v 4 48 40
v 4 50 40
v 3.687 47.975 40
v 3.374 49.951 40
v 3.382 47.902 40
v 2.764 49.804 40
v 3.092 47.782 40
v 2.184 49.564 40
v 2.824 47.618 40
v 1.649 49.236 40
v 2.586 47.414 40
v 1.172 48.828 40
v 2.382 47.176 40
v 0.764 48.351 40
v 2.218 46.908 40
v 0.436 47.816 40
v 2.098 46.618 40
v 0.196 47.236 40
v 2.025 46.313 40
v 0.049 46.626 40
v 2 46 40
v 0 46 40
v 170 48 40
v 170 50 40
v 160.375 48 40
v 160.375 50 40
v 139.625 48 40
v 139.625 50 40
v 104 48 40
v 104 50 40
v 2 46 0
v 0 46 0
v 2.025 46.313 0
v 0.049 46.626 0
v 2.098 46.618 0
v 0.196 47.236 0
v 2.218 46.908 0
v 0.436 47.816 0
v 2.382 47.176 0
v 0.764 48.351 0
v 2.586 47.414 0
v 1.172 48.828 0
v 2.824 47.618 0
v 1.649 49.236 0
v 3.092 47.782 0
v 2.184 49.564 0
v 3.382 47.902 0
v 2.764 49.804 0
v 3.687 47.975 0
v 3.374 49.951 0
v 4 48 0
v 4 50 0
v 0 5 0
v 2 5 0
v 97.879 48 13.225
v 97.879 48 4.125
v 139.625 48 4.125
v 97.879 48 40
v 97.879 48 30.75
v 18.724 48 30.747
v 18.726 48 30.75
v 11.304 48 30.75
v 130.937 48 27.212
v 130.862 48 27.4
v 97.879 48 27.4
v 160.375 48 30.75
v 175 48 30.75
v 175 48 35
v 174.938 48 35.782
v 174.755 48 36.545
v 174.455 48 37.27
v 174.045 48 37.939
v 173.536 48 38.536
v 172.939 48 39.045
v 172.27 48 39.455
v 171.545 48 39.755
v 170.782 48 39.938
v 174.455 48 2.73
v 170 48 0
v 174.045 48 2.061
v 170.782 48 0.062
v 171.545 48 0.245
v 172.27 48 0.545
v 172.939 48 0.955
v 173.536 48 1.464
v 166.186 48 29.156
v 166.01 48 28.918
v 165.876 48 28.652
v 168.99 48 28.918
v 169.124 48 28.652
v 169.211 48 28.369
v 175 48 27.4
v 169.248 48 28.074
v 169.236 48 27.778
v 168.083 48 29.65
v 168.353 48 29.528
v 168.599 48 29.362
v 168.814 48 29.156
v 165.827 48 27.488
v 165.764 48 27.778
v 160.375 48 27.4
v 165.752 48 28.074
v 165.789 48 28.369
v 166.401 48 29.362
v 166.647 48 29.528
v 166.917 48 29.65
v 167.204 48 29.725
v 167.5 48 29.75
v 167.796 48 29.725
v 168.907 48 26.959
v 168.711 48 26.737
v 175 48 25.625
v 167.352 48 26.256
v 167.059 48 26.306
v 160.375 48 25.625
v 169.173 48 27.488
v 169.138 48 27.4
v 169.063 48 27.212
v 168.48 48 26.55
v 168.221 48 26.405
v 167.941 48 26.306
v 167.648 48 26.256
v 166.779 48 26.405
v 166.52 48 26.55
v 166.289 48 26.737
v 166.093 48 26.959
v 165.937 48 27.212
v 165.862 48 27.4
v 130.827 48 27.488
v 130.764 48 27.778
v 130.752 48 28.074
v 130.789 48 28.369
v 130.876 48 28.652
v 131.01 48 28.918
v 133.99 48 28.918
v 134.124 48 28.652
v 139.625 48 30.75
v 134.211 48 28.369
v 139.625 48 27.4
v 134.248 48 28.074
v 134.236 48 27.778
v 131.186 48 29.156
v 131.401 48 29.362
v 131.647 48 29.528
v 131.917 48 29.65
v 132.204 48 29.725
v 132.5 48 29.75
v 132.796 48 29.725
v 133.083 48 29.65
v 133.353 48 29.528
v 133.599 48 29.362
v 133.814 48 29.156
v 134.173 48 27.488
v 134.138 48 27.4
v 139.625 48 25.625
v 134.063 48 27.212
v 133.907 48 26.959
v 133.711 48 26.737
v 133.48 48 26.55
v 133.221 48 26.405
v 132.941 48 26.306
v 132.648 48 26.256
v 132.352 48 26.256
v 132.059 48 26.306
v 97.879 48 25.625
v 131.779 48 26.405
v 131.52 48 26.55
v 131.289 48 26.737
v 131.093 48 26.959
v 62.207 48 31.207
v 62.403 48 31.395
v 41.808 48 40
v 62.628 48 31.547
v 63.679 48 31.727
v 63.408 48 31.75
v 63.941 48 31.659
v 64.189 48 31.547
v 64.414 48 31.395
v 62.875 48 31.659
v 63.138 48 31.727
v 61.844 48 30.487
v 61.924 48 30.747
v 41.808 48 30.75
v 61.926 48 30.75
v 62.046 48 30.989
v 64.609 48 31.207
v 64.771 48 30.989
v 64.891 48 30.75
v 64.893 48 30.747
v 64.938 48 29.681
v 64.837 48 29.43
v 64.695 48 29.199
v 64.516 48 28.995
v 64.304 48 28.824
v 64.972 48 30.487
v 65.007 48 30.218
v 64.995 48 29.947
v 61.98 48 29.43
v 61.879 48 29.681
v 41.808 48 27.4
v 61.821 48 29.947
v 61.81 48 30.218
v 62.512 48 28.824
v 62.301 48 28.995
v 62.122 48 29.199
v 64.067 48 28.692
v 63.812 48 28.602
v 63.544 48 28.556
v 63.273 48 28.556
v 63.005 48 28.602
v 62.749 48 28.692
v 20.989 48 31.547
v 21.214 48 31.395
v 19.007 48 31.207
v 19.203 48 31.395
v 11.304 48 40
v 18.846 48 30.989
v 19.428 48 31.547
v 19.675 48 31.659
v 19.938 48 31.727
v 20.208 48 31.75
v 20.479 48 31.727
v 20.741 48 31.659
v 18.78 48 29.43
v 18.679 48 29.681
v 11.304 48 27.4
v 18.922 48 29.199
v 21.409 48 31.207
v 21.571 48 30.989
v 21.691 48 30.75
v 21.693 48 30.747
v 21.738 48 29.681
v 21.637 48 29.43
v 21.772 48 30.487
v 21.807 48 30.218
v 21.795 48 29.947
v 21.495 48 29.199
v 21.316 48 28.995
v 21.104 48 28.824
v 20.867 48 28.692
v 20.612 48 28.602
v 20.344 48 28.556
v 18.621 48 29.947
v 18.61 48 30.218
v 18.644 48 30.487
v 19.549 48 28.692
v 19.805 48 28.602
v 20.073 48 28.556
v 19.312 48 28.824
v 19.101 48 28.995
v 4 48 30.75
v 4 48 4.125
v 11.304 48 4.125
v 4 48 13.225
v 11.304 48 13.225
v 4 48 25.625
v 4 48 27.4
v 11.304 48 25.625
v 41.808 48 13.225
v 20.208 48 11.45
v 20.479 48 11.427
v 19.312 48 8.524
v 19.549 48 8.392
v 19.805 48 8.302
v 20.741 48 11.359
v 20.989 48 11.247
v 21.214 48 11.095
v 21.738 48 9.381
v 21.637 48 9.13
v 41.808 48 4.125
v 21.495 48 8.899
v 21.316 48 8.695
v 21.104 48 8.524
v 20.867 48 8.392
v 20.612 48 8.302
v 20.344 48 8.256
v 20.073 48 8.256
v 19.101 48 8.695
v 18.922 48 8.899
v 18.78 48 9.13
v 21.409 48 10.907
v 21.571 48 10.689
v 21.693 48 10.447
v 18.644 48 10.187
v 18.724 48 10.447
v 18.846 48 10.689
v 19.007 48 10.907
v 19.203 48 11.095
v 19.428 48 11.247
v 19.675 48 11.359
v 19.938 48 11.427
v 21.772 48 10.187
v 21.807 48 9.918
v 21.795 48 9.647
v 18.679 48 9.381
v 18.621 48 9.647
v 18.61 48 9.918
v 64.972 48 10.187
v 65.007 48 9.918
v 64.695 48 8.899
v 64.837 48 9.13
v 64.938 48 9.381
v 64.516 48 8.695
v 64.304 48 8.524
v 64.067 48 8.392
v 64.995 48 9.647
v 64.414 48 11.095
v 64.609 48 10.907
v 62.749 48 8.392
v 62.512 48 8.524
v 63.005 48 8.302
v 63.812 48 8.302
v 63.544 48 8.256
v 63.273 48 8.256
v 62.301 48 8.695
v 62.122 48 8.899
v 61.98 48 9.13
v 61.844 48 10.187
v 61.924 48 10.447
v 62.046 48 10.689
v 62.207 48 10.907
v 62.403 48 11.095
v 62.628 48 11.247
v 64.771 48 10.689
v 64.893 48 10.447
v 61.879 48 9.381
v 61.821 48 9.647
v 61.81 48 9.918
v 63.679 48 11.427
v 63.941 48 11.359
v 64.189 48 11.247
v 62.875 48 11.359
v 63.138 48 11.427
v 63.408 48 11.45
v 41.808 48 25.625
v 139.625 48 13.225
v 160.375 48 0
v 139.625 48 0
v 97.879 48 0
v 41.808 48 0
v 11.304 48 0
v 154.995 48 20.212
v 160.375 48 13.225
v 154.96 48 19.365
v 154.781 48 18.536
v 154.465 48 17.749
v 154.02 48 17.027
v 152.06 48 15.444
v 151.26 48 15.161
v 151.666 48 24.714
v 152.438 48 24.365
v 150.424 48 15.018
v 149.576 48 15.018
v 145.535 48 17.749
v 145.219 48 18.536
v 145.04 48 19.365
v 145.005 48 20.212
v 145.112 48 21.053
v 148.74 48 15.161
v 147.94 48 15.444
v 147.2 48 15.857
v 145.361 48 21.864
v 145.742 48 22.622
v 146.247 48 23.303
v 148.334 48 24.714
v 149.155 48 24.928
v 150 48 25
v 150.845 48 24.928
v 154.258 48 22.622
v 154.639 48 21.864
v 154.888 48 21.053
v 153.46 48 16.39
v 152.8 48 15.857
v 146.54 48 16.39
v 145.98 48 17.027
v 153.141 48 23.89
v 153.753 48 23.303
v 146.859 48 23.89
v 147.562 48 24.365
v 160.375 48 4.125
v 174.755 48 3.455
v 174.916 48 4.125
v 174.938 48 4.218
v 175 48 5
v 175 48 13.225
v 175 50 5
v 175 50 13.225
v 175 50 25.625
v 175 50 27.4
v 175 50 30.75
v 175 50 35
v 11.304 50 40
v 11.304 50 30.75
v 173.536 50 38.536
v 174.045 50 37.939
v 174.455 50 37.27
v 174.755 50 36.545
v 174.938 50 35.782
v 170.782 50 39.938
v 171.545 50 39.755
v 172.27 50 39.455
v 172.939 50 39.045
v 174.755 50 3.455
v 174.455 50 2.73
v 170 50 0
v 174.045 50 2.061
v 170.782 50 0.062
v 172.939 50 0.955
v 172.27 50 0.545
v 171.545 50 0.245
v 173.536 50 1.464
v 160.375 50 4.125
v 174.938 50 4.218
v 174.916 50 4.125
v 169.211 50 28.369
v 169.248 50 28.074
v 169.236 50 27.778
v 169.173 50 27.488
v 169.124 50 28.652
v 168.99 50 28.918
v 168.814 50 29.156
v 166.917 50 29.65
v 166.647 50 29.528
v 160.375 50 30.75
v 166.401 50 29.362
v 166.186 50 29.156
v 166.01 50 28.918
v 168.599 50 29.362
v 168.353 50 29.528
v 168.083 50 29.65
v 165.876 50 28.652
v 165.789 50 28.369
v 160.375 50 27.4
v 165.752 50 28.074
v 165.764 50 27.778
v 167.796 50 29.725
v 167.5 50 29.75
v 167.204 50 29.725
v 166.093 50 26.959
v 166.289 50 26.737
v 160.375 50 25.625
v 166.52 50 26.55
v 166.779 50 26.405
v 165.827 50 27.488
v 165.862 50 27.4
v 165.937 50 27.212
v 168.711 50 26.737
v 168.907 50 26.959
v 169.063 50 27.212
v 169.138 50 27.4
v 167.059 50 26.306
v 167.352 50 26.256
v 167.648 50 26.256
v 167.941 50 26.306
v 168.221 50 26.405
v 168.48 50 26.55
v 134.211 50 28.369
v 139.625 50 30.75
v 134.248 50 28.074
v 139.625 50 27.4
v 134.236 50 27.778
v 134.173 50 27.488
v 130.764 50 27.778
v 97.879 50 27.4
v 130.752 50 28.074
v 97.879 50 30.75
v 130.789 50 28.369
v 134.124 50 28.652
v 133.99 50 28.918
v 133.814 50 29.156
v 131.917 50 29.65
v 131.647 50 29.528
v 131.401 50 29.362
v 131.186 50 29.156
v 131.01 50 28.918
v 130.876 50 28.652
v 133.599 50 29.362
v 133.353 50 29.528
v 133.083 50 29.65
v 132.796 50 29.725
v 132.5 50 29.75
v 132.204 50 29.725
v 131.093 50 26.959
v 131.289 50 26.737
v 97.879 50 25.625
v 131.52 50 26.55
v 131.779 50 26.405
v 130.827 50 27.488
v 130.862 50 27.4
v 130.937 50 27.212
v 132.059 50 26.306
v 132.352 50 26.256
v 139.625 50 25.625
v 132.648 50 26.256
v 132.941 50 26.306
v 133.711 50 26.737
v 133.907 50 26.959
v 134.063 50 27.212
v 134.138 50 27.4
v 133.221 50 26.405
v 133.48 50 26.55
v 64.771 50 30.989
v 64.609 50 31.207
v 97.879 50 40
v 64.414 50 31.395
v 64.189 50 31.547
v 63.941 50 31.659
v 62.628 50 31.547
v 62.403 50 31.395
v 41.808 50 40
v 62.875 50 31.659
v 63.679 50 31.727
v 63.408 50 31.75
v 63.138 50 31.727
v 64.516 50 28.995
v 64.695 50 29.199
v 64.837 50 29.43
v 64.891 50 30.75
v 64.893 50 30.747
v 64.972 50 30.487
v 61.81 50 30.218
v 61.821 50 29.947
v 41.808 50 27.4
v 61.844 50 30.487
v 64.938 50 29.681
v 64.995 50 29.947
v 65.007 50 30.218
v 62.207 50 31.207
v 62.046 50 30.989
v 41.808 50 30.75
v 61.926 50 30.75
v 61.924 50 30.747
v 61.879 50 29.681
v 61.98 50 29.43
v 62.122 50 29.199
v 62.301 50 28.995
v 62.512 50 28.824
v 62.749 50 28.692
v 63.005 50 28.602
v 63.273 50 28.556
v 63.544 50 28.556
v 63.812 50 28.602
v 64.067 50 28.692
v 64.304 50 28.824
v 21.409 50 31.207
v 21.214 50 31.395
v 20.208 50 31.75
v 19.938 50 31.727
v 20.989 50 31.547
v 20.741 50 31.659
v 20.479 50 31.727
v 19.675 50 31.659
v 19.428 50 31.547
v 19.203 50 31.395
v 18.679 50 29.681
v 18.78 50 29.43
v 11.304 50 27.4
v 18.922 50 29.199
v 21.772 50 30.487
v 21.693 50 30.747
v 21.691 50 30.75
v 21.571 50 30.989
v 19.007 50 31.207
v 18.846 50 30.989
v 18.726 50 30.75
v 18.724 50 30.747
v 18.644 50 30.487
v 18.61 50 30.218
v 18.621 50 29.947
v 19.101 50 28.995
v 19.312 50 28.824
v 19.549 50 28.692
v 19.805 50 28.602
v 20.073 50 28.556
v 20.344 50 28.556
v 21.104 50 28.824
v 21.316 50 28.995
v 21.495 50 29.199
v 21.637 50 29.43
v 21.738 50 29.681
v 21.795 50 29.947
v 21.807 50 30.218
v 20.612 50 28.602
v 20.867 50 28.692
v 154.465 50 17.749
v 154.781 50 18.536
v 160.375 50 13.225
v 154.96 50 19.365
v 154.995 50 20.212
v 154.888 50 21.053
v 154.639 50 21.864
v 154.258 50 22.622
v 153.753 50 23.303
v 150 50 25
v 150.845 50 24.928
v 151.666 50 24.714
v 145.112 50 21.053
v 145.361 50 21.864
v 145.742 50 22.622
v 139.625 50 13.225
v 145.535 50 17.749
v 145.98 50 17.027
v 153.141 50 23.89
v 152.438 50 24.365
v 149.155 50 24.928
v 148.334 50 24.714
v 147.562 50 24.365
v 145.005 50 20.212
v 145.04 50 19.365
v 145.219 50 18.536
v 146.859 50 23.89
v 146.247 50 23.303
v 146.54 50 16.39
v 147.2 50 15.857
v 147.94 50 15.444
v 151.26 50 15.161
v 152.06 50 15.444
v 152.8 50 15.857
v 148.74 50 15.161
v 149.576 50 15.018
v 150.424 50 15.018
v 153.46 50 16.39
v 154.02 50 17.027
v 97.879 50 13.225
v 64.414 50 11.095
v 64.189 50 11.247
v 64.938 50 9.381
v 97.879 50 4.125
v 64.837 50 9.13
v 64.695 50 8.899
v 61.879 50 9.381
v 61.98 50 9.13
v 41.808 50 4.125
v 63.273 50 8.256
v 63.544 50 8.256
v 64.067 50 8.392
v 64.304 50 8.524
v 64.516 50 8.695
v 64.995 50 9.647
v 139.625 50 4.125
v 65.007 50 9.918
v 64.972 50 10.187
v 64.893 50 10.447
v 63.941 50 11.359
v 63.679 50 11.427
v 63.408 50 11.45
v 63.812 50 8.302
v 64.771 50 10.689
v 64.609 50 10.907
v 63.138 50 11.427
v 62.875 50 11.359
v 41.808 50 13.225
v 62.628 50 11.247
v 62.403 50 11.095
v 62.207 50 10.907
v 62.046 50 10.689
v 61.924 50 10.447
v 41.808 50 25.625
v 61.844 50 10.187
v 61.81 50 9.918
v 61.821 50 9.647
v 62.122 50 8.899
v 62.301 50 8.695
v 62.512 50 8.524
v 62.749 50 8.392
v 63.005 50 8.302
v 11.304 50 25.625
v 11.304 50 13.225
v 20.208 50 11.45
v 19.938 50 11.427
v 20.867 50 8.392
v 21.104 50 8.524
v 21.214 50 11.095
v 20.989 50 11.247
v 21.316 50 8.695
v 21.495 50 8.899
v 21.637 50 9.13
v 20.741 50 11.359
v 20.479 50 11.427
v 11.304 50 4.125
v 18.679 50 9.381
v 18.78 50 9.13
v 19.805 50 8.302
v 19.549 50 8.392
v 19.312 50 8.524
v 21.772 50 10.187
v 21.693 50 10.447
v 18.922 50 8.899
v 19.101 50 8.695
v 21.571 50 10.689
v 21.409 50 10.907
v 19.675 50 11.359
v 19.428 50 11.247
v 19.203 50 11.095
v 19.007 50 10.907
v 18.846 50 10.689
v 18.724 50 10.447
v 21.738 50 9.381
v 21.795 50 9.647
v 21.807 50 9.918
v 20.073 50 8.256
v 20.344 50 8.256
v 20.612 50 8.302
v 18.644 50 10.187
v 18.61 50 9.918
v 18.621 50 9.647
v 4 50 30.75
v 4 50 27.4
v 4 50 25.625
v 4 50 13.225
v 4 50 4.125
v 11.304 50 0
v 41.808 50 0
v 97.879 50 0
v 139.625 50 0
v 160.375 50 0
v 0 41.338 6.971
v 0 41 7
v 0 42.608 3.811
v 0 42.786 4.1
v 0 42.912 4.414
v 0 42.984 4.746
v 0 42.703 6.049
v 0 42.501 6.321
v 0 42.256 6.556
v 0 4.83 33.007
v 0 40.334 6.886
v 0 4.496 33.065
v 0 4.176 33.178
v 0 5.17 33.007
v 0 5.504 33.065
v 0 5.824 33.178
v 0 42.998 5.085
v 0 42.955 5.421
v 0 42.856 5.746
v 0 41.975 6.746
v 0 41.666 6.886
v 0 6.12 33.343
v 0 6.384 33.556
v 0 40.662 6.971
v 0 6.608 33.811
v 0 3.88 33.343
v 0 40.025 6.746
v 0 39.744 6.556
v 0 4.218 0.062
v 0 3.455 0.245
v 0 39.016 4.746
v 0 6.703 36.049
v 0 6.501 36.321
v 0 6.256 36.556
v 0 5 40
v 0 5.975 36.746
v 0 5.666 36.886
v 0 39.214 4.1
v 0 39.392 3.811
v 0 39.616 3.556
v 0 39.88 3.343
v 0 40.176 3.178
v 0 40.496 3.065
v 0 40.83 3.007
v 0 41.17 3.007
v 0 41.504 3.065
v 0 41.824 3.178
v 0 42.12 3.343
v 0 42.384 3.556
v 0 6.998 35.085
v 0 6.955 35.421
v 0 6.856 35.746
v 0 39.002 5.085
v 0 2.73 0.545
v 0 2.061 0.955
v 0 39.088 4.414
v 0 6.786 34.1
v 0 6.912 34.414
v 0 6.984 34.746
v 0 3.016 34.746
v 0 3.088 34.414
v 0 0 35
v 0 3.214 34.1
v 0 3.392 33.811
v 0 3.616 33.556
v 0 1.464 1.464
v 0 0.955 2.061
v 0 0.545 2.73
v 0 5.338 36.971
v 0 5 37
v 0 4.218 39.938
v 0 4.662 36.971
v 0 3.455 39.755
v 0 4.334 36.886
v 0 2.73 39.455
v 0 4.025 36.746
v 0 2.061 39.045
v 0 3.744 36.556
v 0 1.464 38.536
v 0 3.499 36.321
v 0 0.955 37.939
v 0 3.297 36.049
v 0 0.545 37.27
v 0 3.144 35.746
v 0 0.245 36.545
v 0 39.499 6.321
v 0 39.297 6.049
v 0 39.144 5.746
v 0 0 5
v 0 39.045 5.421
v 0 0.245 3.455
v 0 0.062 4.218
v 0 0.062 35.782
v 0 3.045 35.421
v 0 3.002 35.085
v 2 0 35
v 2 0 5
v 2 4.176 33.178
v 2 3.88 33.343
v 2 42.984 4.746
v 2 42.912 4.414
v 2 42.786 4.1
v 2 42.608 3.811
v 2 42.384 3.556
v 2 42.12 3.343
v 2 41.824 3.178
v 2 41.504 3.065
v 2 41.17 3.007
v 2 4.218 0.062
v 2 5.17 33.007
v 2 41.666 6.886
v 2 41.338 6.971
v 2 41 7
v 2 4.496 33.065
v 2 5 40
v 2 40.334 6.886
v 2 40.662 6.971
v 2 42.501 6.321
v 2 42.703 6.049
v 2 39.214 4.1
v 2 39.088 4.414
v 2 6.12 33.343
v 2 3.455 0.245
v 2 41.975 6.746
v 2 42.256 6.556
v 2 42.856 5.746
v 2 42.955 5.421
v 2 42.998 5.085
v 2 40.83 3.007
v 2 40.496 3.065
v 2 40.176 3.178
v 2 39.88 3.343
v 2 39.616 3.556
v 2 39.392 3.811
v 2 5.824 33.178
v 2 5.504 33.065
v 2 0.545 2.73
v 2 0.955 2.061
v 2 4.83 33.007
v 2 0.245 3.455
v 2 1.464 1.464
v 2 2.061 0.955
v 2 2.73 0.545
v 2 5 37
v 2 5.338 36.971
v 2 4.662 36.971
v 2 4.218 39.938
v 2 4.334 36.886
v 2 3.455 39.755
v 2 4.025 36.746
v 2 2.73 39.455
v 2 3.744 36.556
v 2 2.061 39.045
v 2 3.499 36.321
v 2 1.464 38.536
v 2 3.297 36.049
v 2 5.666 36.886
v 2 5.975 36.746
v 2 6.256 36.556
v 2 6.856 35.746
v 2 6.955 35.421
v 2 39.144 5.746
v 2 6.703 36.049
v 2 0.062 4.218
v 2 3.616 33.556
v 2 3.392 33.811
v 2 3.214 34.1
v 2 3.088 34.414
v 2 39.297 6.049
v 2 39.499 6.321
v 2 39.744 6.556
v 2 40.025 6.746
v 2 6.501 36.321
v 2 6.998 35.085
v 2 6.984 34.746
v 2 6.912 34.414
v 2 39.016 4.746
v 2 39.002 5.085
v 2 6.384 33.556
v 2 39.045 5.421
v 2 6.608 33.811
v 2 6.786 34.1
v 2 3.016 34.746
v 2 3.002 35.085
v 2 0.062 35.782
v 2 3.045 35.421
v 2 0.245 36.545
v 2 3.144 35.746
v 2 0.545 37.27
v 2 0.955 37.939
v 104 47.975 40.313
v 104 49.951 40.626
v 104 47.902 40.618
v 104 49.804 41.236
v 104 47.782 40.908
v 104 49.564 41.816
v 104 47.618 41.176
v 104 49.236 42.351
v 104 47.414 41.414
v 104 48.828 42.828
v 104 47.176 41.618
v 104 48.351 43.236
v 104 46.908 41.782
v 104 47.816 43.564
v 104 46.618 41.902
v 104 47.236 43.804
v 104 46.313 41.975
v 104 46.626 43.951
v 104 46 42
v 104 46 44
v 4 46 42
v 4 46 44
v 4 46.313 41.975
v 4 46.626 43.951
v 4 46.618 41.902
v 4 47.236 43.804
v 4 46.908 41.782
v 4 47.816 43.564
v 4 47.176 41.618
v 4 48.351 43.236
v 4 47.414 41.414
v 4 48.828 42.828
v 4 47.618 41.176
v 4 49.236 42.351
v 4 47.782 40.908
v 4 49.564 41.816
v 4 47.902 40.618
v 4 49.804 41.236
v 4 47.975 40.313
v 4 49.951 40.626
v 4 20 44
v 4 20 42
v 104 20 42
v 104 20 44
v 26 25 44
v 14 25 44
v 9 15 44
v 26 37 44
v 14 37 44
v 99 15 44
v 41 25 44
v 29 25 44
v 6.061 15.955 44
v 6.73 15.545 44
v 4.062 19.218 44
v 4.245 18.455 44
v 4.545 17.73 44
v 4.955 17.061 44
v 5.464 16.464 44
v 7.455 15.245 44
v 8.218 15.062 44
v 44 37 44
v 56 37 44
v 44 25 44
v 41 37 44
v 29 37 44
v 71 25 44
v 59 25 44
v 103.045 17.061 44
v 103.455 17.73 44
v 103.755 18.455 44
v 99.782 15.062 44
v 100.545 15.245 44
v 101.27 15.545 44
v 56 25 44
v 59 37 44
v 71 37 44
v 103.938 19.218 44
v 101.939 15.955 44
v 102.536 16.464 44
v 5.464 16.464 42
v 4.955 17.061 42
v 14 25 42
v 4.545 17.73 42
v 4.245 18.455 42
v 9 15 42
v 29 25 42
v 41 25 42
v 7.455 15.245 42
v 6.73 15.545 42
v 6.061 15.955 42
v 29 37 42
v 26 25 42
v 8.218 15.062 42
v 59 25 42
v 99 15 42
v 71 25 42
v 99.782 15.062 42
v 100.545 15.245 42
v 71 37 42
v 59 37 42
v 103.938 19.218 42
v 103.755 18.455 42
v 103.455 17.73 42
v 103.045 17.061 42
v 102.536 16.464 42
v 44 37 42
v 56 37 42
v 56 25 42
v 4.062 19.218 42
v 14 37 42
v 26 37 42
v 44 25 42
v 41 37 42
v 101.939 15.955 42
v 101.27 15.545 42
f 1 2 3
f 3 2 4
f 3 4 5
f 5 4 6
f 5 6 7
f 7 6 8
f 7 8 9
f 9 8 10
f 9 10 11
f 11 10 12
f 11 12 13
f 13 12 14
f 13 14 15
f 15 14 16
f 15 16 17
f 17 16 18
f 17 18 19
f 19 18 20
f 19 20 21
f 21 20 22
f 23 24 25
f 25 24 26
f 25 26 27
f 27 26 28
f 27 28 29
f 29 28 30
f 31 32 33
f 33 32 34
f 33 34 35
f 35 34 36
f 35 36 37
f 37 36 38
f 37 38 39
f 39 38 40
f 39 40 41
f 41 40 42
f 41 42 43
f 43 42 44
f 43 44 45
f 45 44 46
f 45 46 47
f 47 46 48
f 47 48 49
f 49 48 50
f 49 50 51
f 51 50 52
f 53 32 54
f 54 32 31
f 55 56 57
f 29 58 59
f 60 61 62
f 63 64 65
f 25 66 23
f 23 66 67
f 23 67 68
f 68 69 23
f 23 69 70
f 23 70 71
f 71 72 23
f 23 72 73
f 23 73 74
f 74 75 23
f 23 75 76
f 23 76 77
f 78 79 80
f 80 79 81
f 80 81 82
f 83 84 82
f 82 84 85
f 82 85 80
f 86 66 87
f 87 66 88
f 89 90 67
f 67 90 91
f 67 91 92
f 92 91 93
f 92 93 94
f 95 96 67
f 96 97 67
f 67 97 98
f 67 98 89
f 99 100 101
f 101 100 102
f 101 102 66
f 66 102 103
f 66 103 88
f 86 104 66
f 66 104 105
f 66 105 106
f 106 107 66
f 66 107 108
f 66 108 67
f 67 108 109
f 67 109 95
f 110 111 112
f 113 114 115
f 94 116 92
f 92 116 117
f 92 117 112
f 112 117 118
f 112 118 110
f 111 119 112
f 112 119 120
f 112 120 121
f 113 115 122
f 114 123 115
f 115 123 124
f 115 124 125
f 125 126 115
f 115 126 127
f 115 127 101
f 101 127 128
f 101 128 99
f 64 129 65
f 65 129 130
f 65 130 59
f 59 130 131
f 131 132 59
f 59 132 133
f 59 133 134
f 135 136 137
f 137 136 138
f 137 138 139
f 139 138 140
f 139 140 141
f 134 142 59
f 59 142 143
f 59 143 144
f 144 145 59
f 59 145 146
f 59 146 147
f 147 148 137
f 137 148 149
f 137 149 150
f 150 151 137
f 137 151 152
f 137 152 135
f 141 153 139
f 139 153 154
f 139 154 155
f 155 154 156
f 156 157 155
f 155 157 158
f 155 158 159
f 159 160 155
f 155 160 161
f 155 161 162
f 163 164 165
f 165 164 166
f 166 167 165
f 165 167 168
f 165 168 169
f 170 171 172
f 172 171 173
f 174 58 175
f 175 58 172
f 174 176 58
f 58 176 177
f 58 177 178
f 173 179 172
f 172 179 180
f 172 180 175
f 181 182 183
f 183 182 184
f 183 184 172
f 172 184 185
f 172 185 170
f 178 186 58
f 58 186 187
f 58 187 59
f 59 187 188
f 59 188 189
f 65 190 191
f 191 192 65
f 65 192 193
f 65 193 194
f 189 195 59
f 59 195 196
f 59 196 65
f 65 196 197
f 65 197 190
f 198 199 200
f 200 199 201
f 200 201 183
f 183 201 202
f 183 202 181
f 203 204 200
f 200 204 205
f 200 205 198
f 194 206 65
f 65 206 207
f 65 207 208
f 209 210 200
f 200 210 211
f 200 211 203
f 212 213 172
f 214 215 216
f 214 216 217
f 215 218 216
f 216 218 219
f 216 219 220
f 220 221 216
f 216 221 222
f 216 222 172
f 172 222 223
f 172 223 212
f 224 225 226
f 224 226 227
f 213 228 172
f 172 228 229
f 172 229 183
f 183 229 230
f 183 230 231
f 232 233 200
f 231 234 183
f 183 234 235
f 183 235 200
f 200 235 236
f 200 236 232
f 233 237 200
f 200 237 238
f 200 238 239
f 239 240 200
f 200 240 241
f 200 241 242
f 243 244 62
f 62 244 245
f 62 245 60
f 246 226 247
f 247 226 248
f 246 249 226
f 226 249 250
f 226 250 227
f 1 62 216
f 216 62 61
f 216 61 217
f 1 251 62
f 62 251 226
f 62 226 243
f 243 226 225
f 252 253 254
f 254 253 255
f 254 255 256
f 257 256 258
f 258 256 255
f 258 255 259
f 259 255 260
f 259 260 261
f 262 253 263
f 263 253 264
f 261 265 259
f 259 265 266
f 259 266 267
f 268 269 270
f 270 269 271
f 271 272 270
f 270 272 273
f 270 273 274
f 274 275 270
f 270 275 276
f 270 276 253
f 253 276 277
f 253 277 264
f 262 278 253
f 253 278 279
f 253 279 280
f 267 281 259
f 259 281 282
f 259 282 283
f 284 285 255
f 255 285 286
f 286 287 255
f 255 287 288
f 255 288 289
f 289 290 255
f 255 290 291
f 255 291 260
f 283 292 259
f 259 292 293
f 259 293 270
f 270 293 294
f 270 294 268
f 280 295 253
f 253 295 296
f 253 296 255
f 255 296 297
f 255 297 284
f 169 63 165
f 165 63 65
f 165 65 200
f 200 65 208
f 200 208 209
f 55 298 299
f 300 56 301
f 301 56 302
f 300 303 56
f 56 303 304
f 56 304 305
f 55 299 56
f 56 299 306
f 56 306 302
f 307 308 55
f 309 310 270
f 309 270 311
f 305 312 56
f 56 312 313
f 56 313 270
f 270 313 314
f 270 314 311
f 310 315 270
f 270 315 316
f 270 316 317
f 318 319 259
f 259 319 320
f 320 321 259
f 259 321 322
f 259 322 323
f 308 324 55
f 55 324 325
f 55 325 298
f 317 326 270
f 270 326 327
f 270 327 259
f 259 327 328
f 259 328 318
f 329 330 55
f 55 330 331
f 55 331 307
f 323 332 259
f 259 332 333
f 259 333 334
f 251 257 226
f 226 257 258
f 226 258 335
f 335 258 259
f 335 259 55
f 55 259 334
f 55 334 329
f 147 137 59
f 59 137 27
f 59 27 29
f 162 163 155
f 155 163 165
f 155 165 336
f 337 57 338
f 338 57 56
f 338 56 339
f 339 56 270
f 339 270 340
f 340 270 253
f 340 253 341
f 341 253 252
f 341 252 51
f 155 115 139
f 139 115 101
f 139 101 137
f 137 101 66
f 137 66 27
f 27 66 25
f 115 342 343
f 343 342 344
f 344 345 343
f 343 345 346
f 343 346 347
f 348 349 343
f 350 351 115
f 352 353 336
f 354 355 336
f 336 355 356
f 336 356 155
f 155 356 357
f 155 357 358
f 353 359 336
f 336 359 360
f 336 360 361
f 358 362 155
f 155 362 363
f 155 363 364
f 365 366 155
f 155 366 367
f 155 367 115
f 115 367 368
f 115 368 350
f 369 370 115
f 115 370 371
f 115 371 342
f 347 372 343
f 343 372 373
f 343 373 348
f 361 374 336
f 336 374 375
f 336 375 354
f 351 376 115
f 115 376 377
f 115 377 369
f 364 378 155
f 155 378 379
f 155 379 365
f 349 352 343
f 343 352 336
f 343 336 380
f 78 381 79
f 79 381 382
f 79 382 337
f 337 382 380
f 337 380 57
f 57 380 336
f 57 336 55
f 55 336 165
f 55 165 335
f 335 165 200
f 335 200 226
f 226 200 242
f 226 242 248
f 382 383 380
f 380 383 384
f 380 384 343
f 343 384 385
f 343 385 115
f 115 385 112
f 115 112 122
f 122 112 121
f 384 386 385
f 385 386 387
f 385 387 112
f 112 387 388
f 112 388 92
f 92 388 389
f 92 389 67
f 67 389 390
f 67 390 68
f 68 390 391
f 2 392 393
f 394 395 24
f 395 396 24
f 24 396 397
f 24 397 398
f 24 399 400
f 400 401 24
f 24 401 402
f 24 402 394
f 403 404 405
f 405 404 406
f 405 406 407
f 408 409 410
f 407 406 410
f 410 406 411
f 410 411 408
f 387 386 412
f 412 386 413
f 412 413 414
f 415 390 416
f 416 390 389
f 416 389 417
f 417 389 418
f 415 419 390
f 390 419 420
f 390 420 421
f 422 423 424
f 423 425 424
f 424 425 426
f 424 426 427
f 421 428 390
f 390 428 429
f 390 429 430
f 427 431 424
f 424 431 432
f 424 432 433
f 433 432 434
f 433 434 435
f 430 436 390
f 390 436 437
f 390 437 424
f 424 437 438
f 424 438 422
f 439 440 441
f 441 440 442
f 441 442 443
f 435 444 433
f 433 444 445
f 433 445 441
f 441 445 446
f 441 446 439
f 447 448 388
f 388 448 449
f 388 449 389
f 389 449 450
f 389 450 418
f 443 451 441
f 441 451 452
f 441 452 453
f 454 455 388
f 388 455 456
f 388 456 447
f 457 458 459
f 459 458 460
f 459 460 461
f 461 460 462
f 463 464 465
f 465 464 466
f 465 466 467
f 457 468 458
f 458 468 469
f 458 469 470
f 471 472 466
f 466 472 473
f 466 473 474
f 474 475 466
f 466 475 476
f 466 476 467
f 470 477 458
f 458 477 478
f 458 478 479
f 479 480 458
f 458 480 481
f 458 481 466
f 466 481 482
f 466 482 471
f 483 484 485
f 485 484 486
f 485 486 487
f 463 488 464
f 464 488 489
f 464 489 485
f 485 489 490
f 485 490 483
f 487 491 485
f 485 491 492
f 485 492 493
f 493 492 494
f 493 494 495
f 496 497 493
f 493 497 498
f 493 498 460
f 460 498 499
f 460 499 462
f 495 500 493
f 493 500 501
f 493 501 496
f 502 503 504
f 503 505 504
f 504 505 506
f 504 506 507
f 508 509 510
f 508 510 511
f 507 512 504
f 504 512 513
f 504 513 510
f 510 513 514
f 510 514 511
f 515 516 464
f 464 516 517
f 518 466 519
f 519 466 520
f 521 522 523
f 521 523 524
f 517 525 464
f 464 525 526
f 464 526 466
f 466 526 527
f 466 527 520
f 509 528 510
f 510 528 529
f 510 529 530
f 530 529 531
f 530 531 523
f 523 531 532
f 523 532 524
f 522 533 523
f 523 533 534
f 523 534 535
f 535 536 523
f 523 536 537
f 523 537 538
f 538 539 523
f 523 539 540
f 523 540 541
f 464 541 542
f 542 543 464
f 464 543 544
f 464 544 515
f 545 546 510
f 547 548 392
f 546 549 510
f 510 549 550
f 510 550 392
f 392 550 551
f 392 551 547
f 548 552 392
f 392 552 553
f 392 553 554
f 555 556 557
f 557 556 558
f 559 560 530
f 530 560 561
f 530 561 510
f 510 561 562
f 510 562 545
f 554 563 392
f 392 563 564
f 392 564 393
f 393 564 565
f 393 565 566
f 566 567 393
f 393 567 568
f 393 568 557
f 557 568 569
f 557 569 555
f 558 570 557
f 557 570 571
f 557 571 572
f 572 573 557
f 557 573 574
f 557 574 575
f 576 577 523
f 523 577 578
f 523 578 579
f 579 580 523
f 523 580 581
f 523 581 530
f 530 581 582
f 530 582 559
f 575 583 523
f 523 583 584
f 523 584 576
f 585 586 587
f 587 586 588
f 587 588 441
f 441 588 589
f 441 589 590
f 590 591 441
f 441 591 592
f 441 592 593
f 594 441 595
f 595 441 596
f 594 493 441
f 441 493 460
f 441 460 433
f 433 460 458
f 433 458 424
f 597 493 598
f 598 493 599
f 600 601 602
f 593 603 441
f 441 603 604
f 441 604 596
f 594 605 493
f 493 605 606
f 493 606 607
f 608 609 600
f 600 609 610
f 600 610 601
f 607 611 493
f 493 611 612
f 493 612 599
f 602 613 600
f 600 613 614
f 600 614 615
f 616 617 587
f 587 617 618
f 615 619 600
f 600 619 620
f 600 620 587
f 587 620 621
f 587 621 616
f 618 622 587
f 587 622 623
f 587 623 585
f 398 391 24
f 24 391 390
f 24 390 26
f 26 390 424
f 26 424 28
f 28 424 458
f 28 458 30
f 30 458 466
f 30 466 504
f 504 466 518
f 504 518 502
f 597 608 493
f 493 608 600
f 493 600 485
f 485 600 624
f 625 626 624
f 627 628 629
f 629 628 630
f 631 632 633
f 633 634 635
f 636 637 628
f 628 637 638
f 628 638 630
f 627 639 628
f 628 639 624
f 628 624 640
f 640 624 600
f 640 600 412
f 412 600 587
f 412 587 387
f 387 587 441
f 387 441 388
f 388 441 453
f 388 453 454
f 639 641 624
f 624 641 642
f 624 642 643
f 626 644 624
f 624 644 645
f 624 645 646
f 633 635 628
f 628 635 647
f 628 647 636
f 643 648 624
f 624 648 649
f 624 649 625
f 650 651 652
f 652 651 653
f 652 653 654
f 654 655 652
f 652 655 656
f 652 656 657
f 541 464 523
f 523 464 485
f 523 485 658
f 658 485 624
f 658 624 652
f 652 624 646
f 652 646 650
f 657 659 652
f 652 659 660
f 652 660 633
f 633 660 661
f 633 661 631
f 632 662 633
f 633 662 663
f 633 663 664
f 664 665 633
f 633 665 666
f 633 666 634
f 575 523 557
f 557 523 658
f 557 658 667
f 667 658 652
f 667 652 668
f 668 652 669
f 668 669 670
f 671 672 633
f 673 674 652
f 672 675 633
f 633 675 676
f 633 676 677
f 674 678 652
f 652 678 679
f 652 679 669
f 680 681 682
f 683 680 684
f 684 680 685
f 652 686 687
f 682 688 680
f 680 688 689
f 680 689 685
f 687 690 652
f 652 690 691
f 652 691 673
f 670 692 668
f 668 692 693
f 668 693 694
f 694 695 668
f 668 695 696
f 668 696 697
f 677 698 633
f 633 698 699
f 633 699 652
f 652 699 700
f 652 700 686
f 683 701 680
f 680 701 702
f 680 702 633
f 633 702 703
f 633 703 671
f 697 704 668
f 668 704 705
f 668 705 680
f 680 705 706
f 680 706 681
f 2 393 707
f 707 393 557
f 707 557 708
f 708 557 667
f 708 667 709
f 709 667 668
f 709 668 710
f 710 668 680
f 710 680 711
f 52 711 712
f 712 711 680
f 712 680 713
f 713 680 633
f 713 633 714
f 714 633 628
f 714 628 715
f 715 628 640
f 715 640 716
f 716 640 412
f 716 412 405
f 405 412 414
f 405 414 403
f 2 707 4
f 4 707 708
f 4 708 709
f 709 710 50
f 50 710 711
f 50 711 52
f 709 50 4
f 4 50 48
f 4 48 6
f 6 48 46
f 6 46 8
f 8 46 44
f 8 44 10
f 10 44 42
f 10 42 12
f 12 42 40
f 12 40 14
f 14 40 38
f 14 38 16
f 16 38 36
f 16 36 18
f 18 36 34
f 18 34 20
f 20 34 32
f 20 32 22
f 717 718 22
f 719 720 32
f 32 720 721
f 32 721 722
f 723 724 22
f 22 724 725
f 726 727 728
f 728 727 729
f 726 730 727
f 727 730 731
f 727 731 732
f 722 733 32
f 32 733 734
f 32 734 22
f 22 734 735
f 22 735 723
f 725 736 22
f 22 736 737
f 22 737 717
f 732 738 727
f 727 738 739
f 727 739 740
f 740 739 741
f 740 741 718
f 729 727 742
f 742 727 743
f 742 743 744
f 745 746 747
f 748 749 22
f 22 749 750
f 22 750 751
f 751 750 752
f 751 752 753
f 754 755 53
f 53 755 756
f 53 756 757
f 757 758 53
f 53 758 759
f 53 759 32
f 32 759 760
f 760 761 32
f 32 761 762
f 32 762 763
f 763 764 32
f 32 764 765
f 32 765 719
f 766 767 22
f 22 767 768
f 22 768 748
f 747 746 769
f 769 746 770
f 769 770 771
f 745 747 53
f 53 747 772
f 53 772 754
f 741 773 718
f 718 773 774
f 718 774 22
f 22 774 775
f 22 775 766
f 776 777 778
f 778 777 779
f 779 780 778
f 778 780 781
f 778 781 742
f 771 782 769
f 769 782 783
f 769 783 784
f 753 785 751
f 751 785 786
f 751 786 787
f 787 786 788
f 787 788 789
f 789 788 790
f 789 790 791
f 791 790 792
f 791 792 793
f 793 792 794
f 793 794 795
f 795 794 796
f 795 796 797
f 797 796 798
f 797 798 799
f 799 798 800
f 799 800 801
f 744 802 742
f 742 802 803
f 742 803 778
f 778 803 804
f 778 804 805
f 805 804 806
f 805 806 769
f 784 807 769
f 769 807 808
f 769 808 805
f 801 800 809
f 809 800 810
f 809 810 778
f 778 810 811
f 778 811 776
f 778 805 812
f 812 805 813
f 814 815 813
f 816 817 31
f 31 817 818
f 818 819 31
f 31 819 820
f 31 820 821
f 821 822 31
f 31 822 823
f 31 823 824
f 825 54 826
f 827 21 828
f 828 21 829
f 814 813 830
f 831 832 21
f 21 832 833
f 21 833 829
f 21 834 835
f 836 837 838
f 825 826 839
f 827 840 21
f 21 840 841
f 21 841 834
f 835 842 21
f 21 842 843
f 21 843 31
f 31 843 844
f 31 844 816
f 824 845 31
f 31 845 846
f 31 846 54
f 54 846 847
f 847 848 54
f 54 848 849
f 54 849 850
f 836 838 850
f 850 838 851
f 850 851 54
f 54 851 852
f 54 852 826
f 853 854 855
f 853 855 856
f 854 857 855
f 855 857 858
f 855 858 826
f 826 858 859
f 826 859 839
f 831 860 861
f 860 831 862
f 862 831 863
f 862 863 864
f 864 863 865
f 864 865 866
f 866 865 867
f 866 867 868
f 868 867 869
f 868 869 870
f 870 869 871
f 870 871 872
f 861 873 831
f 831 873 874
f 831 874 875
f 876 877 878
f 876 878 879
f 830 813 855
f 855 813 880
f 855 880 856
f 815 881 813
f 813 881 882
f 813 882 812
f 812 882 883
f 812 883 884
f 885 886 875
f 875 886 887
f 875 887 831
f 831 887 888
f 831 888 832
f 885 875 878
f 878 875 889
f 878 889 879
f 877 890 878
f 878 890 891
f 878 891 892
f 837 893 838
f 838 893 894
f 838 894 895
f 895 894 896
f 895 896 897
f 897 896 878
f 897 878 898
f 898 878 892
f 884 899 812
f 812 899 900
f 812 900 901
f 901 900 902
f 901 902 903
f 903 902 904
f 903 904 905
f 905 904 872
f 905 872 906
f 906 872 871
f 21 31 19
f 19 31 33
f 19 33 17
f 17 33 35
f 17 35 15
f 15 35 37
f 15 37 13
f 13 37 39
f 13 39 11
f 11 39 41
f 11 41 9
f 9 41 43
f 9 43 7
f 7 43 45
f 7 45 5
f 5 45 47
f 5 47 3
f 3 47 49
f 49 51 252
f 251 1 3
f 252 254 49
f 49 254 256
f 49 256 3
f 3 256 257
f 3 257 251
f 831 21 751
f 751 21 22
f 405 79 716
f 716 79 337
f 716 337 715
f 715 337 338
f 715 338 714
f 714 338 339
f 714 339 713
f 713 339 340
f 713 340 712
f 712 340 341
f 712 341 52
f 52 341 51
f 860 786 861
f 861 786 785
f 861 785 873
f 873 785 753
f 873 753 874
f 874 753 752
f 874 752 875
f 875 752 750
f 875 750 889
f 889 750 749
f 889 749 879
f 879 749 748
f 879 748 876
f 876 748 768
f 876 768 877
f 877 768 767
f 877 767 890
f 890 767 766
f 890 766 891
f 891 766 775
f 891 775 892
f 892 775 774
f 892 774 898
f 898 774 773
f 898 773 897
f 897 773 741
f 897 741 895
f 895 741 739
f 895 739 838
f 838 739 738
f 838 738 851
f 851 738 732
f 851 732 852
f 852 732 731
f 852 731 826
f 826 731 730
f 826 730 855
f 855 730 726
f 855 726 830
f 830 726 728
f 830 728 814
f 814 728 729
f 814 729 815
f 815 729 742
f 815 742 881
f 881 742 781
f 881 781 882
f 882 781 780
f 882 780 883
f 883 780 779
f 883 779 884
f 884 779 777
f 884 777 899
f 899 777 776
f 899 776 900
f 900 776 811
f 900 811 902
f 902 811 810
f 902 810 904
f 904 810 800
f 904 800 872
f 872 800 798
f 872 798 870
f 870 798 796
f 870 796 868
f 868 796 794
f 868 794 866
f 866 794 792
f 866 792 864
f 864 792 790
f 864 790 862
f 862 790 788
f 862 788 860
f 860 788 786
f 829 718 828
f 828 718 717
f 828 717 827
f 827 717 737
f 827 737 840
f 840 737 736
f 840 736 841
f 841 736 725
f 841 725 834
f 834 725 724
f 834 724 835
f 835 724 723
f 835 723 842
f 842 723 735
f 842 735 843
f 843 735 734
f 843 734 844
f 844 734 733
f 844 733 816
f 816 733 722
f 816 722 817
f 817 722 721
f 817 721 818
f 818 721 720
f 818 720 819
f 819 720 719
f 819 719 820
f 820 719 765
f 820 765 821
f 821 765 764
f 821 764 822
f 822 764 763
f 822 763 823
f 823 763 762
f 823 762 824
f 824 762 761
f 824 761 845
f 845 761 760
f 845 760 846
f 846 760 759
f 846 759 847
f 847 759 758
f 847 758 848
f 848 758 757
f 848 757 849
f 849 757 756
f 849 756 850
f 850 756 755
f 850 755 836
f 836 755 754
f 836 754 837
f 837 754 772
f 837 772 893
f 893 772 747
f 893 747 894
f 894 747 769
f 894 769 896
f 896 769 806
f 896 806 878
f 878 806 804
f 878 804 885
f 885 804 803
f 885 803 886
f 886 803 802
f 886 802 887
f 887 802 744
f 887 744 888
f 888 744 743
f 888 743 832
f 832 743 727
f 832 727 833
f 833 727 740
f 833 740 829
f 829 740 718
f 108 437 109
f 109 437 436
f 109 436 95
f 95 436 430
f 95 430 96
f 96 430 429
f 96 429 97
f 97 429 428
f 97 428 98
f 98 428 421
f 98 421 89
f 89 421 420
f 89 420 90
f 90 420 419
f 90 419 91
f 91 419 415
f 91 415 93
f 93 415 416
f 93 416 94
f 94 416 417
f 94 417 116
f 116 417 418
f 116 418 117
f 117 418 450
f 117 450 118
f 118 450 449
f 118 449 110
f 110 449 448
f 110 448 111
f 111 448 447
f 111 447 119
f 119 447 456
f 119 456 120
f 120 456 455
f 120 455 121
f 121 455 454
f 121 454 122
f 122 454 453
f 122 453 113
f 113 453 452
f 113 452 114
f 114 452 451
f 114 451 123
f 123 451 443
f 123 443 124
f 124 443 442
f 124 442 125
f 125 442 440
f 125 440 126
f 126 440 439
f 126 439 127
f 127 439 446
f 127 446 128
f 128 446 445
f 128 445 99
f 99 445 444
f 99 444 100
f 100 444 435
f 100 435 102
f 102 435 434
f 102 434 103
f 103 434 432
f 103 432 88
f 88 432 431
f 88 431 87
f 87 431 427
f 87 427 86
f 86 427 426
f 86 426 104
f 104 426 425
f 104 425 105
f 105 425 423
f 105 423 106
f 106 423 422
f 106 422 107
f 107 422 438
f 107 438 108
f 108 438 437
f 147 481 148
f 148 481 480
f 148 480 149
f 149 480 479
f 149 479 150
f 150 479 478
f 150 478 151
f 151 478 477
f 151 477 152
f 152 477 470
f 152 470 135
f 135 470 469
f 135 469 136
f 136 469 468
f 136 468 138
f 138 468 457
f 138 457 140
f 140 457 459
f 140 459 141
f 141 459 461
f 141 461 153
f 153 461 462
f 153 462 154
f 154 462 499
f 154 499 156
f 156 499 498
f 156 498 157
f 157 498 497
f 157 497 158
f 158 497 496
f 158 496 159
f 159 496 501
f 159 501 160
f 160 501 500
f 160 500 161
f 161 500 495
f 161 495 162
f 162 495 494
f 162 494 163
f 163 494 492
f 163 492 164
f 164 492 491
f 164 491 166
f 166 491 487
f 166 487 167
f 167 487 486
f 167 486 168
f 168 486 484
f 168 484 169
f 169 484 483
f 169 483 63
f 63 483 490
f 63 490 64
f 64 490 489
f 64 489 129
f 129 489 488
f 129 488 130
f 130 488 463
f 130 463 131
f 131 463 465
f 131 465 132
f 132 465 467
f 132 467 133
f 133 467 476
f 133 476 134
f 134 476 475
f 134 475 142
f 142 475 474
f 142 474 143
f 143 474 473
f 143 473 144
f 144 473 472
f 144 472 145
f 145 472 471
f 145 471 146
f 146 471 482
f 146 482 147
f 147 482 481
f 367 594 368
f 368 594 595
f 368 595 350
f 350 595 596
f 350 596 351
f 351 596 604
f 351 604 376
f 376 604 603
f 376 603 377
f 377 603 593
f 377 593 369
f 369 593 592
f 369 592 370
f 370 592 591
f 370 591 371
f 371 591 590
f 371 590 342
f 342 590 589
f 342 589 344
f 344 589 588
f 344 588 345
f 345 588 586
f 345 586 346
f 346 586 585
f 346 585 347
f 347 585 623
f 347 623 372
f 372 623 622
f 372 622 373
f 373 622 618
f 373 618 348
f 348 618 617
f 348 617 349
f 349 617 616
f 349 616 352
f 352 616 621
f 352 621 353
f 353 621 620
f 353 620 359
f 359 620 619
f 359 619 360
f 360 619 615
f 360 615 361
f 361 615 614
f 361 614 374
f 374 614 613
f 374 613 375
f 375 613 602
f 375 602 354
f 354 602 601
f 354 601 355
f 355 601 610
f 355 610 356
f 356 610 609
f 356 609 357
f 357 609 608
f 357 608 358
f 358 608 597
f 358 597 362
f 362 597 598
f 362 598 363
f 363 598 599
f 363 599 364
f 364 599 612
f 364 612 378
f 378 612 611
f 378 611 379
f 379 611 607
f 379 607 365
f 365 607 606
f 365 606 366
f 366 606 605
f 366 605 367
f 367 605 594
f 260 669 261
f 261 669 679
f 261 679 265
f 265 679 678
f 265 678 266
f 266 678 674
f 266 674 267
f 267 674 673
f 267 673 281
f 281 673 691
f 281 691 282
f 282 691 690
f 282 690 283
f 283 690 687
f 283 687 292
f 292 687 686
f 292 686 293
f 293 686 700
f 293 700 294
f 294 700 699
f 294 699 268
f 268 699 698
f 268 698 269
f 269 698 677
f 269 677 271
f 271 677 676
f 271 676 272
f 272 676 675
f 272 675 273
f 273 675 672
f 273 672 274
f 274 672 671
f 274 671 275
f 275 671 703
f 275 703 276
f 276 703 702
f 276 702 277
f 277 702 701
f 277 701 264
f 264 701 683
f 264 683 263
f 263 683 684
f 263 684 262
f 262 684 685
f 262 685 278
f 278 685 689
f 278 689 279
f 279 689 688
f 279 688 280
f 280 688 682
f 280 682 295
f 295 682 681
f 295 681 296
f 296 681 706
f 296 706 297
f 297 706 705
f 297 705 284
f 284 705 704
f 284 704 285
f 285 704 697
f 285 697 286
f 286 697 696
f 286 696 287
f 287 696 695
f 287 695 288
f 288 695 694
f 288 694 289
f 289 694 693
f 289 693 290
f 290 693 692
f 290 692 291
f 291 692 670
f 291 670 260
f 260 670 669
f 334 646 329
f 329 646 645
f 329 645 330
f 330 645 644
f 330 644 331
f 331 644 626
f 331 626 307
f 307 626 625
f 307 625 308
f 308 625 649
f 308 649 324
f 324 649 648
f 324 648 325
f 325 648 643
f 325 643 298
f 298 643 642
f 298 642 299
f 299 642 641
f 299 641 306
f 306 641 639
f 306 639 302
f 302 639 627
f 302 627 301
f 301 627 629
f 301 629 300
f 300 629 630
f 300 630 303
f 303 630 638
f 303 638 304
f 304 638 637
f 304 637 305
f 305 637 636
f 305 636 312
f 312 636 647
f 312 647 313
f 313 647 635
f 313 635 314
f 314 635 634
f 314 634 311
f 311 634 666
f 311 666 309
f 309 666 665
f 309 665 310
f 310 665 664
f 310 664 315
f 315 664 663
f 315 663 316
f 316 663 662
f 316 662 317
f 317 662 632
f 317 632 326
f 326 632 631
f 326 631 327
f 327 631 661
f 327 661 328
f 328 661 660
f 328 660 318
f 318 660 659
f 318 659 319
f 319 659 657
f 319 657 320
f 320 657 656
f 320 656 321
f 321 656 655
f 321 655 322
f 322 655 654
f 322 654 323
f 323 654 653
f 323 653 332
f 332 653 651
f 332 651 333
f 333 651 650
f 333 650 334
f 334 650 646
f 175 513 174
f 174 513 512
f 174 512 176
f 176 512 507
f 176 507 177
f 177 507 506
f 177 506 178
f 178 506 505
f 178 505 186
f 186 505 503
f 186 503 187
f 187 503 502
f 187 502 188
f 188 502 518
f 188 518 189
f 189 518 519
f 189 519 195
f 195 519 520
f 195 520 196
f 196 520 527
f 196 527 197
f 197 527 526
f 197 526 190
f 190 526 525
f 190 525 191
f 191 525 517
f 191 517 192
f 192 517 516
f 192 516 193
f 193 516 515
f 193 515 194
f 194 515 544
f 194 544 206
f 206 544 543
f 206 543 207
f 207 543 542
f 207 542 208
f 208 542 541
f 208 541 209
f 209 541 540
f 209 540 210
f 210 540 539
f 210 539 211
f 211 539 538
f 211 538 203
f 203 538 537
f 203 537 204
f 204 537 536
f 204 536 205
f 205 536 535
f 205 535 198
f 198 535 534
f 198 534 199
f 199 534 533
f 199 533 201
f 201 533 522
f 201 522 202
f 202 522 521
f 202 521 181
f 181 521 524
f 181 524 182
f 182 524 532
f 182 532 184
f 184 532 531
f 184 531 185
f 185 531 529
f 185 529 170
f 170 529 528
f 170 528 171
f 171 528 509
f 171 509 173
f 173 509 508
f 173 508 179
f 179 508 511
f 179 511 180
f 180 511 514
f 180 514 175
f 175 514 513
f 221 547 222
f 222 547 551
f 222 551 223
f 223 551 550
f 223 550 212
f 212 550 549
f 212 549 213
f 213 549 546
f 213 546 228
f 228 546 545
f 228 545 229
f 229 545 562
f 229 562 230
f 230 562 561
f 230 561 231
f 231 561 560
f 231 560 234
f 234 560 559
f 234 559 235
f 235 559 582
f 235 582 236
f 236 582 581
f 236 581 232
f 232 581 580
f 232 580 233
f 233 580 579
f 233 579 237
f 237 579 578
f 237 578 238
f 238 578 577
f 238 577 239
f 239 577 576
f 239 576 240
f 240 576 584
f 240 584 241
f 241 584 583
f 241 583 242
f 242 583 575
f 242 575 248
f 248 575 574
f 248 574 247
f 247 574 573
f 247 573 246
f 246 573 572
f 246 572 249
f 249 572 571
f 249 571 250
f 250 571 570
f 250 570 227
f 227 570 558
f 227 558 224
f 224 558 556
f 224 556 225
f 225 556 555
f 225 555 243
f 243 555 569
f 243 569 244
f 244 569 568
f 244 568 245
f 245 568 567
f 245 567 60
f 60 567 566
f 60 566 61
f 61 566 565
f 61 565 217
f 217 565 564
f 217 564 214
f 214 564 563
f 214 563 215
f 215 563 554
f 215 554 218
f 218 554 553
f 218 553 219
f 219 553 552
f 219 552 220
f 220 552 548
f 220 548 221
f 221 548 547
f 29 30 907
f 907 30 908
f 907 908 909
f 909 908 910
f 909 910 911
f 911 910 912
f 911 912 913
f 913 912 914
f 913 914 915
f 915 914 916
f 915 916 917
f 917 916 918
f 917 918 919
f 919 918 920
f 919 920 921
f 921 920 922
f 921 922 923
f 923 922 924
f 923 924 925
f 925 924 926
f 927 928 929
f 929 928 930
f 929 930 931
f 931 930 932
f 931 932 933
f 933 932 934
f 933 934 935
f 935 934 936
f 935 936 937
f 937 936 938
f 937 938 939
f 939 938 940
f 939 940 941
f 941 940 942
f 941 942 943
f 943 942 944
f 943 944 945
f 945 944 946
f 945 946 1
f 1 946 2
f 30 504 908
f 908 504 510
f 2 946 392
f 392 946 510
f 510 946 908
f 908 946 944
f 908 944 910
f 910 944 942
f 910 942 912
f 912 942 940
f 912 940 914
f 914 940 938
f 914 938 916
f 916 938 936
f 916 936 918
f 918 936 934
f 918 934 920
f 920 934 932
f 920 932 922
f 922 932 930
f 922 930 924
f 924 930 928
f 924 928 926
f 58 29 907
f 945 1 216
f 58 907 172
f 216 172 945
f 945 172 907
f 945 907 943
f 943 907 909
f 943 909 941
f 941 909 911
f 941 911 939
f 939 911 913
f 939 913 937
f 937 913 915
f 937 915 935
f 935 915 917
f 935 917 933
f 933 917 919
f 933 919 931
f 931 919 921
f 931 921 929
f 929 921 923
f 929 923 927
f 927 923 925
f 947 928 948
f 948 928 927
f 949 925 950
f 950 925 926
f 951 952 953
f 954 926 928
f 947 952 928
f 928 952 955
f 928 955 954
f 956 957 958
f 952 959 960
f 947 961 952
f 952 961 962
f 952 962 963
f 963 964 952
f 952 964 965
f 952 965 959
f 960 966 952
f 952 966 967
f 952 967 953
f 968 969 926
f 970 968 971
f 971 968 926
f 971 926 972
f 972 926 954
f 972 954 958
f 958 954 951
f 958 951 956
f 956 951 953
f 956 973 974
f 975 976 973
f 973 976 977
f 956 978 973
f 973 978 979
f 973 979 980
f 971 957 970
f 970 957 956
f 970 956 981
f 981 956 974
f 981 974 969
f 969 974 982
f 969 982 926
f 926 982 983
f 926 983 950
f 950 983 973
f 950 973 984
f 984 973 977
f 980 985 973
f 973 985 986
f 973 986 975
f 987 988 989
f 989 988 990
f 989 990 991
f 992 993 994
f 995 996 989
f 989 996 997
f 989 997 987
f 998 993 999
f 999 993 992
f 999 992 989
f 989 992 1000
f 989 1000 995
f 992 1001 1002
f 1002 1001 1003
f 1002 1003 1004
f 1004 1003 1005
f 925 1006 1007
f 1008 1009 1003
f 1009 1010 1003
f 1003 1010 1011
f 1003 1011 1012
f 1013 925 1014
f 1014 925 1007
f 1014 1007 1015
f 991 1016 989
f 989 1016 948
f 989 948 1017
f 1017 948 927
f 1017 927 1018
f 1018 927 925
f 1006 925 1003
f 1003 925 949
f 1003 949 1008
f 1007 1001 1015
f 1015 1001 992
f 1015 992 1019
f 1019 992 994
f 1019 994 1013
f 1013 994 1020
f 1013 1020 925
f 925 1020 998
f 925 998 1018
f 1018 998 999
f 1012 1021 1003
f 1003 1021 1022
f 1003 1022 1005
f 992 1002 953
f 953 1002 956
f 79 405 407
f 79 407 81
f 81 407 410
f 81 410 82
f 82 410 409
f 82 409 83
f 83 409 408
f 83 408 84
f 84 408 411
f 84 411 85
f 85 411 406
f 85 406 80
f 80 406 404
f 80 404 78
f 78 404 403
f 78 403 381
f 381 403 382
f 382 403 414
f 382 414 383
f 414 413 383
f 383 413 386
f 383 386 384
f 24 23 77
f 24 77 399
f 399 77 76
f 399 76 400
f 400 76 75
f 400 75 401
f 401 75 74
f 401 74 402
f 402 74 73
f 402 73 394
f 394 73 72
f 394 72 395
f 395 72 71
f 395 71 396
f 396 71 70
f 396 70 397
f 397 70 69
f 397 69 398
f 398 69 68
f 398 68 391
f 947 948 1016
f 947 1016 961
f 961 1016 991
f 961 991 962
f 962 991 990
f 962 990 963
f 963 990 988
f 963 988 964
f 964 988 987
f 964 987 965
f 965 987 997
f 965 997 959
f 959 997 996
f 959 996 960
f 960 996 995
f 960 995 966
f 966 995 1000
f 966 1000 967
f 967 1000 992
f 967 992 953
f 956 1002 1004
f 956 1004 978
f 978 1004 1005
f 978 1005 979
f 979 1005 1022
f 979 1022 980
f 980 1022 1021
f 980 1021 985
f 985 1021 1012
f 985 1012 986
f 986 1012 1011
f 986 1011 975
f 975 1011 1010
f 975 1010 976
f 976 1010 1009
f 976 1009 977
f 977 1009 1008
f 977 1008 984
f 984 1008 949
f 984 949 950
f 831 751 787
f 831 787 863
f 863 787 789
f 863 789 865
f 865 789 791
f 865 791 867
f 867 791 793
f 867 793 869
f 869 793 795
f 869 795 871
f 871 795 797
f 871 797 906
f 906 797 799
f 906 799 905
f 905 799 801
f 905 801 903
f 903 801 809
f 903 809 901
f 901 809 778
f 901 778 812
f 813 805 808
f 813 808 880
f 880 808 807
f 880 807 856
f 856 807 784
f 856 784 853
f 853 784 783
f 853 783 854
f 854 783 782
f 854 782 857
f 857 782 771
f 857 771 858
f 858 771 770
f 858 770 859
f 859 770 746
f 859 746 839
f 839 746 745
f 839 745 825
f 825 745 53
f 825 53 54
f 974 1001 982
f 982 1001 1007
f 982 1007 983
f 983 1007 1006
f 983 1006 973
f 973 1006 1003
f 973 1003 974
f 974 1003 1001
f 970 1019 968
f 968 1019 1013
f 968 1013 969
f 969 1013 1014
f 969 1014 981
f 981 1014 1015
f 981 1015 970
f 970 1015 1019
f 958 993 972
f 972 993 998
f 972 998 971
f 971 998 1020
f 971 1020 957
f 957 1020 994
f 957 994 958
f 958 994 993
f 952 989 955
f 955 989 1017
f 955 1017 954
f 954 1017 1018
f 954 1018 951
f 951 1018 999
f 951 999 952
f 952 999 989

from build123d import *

# Parameters (mm, degrees)
BASE_FLANGE1_DEPTH = 40
SKETCH6_R          = 2
CUT_EXTRUDE1_DEPTH = 10
SKETCH7_R          = 5
SKETCH7_R_2        = 1.75
CUT_EXTRUDE2_DEPTH = 10
SKETCH8_R          = 1.6
CUT_EXTRUDE3_DEPTH = 10
EDGE_FLANGE1_DEPTH = 100
FILLET1_R          = 5
SKETCH12_W         = 12
SKETCH12_H         = 12
CUT_EXTRUDE4_DEPTH = 10


# Sheet-metal steps are written as plain solids
with BuildPart() as part:
    # Sketch1 → Base-Flange1 (new body)
    with BuildSketch(Plane.XY):
        with BuildLine():
            Line((0, 0), (0, 46))
            ThreePointArc((0, 46), (1.171572875, 48.828427125), (4, 50))
            Line((4, 50), (175, 50))
            Line((175, 50), (175, 48))
            Line((175, 48), (4, 48))
            ThreePointArc((4, 48), (2.585786438, 47.414213562), (2, 46))
            Line((2, 46), (2, 0))
            Line((2, 0), (0, 0))
        make_face()
    extrude(amount=BASE_FLANGE1_DEPTH)

    # Sketch6 → Cut-Extrude1 (cut)
    with BuildSketch(Plane.ZY):
        with Locations((5, 41)):
            Circle(SKETCH6_R)
        with Locations((35, 5)):
            Circle(SKETCH6_R)
    extrude(amount=-CUT_EXTRUDE1_DEPTH, mode=Mode.SUBTRACT)

    # Sketch7 → Cut-Extrude2 (cut)
    with BuildSketch(Plane(origin=(0, 50, 0), x_dir=(1, 0, 0), z_dir=(0, 1, 0))):
        with Locations(Location((150, -20, 0), (0, 0, 270))):
            Circle(SKETCH7_R)
        with Locations(Location((132.5, -28, 0), (0, 0, 270))):
            Circle(SKETCH7_R_2)
        with Locations(Location((167.5, -28, 0), (0, 0, 270))):
            Circle(SKETCH7_R_2)
    extrude(amount=-CUT_EXTRUDE2_DEPTH, mode=Mode.SUBTRACT)

    # Sketch8 → Cut-Extrude3 (cut)
    with BuildSketch(Plane(origin=(0, 50, 0), x_dir=(1, 0, 0), z_dir=(0, 1, 0))):
        with Locations(Location((20.208399829, -9.85, 0), (0, 0, 270))):
            Circle(SKETCH8_R)
        with Locations(Location((63.408399829, -9.85, 0), (0, 0, 270))):
            Circle(SKETCH8_R)
        with Locations(Location((63.408399829, -30.15, 0), (0, 0, 270))):
            Circle(SKETCH8_R)
        with Locations(Location((20.208399829, -30.15, 0), (0, 0, 270))):
            Circle(SKETCH8_R)
    extrude(amount=-CUT_EXTRUDE3_DEPTH, mode=Mode.SUBTRACT)

    # Edge-Flange1 section (across the edge) → Edge-Flange1 (add)
    with BuildSketch(Plane(origin=(104, 48, 42), x_dir=(0, 0, -1), z_dir=(-1, 0, 0))):
        with BuildLine():
            Line((-2, 2), (-2, 33))
            Line((-2, 33), (0, 33))
            Line((0, 33), (0, 2))
            ThreePointArc((0, 2), (0.585786438, 0.585786438), (2, 0))
            Line((2, 0), (2, -2))
            ThreePointArc((2, -2), (-0.828427125, -0.828427125), (-2, 2))
        make_face()
    extrude(amount=EDGE_FLANGE1_DEPTH)

    # Fillet1
    fillet1_edges = [part.edges().sort_by_distance(p)[0] for p in [
        (104, 15, 43),
        (4, 15, 43),
        (1, 0, 40),
        (175, 49, 40),
        (1, 0, 0),
        (175, 49, 0),
    ]]
    fillet(fillet1_edges, radius=FILLET1_R)

    # Sketch12 → Cut-Extrude4 (cut)
    with BuildSketch(Plane.XY.offset(44)):
        with Locations((20, 31)):
            Rectangle(SKETCH12_W, SKETCH12_H)
        with Locations((35, 31)):
            Rectangle(SKETCH12_W, SKETCH12_H)
        with Locations((50, 31)):
            Rectangle(SKETCH12_W, SKETCH12_H)
        with Locations((65, 31)):
            Rectangle(SKETCH12_W, SKETCH12_H)
    extrude(amount=-CUT_EXTRUDE4_DEPTH, mode=Mode.SUBTRACT)


solid = part.part
